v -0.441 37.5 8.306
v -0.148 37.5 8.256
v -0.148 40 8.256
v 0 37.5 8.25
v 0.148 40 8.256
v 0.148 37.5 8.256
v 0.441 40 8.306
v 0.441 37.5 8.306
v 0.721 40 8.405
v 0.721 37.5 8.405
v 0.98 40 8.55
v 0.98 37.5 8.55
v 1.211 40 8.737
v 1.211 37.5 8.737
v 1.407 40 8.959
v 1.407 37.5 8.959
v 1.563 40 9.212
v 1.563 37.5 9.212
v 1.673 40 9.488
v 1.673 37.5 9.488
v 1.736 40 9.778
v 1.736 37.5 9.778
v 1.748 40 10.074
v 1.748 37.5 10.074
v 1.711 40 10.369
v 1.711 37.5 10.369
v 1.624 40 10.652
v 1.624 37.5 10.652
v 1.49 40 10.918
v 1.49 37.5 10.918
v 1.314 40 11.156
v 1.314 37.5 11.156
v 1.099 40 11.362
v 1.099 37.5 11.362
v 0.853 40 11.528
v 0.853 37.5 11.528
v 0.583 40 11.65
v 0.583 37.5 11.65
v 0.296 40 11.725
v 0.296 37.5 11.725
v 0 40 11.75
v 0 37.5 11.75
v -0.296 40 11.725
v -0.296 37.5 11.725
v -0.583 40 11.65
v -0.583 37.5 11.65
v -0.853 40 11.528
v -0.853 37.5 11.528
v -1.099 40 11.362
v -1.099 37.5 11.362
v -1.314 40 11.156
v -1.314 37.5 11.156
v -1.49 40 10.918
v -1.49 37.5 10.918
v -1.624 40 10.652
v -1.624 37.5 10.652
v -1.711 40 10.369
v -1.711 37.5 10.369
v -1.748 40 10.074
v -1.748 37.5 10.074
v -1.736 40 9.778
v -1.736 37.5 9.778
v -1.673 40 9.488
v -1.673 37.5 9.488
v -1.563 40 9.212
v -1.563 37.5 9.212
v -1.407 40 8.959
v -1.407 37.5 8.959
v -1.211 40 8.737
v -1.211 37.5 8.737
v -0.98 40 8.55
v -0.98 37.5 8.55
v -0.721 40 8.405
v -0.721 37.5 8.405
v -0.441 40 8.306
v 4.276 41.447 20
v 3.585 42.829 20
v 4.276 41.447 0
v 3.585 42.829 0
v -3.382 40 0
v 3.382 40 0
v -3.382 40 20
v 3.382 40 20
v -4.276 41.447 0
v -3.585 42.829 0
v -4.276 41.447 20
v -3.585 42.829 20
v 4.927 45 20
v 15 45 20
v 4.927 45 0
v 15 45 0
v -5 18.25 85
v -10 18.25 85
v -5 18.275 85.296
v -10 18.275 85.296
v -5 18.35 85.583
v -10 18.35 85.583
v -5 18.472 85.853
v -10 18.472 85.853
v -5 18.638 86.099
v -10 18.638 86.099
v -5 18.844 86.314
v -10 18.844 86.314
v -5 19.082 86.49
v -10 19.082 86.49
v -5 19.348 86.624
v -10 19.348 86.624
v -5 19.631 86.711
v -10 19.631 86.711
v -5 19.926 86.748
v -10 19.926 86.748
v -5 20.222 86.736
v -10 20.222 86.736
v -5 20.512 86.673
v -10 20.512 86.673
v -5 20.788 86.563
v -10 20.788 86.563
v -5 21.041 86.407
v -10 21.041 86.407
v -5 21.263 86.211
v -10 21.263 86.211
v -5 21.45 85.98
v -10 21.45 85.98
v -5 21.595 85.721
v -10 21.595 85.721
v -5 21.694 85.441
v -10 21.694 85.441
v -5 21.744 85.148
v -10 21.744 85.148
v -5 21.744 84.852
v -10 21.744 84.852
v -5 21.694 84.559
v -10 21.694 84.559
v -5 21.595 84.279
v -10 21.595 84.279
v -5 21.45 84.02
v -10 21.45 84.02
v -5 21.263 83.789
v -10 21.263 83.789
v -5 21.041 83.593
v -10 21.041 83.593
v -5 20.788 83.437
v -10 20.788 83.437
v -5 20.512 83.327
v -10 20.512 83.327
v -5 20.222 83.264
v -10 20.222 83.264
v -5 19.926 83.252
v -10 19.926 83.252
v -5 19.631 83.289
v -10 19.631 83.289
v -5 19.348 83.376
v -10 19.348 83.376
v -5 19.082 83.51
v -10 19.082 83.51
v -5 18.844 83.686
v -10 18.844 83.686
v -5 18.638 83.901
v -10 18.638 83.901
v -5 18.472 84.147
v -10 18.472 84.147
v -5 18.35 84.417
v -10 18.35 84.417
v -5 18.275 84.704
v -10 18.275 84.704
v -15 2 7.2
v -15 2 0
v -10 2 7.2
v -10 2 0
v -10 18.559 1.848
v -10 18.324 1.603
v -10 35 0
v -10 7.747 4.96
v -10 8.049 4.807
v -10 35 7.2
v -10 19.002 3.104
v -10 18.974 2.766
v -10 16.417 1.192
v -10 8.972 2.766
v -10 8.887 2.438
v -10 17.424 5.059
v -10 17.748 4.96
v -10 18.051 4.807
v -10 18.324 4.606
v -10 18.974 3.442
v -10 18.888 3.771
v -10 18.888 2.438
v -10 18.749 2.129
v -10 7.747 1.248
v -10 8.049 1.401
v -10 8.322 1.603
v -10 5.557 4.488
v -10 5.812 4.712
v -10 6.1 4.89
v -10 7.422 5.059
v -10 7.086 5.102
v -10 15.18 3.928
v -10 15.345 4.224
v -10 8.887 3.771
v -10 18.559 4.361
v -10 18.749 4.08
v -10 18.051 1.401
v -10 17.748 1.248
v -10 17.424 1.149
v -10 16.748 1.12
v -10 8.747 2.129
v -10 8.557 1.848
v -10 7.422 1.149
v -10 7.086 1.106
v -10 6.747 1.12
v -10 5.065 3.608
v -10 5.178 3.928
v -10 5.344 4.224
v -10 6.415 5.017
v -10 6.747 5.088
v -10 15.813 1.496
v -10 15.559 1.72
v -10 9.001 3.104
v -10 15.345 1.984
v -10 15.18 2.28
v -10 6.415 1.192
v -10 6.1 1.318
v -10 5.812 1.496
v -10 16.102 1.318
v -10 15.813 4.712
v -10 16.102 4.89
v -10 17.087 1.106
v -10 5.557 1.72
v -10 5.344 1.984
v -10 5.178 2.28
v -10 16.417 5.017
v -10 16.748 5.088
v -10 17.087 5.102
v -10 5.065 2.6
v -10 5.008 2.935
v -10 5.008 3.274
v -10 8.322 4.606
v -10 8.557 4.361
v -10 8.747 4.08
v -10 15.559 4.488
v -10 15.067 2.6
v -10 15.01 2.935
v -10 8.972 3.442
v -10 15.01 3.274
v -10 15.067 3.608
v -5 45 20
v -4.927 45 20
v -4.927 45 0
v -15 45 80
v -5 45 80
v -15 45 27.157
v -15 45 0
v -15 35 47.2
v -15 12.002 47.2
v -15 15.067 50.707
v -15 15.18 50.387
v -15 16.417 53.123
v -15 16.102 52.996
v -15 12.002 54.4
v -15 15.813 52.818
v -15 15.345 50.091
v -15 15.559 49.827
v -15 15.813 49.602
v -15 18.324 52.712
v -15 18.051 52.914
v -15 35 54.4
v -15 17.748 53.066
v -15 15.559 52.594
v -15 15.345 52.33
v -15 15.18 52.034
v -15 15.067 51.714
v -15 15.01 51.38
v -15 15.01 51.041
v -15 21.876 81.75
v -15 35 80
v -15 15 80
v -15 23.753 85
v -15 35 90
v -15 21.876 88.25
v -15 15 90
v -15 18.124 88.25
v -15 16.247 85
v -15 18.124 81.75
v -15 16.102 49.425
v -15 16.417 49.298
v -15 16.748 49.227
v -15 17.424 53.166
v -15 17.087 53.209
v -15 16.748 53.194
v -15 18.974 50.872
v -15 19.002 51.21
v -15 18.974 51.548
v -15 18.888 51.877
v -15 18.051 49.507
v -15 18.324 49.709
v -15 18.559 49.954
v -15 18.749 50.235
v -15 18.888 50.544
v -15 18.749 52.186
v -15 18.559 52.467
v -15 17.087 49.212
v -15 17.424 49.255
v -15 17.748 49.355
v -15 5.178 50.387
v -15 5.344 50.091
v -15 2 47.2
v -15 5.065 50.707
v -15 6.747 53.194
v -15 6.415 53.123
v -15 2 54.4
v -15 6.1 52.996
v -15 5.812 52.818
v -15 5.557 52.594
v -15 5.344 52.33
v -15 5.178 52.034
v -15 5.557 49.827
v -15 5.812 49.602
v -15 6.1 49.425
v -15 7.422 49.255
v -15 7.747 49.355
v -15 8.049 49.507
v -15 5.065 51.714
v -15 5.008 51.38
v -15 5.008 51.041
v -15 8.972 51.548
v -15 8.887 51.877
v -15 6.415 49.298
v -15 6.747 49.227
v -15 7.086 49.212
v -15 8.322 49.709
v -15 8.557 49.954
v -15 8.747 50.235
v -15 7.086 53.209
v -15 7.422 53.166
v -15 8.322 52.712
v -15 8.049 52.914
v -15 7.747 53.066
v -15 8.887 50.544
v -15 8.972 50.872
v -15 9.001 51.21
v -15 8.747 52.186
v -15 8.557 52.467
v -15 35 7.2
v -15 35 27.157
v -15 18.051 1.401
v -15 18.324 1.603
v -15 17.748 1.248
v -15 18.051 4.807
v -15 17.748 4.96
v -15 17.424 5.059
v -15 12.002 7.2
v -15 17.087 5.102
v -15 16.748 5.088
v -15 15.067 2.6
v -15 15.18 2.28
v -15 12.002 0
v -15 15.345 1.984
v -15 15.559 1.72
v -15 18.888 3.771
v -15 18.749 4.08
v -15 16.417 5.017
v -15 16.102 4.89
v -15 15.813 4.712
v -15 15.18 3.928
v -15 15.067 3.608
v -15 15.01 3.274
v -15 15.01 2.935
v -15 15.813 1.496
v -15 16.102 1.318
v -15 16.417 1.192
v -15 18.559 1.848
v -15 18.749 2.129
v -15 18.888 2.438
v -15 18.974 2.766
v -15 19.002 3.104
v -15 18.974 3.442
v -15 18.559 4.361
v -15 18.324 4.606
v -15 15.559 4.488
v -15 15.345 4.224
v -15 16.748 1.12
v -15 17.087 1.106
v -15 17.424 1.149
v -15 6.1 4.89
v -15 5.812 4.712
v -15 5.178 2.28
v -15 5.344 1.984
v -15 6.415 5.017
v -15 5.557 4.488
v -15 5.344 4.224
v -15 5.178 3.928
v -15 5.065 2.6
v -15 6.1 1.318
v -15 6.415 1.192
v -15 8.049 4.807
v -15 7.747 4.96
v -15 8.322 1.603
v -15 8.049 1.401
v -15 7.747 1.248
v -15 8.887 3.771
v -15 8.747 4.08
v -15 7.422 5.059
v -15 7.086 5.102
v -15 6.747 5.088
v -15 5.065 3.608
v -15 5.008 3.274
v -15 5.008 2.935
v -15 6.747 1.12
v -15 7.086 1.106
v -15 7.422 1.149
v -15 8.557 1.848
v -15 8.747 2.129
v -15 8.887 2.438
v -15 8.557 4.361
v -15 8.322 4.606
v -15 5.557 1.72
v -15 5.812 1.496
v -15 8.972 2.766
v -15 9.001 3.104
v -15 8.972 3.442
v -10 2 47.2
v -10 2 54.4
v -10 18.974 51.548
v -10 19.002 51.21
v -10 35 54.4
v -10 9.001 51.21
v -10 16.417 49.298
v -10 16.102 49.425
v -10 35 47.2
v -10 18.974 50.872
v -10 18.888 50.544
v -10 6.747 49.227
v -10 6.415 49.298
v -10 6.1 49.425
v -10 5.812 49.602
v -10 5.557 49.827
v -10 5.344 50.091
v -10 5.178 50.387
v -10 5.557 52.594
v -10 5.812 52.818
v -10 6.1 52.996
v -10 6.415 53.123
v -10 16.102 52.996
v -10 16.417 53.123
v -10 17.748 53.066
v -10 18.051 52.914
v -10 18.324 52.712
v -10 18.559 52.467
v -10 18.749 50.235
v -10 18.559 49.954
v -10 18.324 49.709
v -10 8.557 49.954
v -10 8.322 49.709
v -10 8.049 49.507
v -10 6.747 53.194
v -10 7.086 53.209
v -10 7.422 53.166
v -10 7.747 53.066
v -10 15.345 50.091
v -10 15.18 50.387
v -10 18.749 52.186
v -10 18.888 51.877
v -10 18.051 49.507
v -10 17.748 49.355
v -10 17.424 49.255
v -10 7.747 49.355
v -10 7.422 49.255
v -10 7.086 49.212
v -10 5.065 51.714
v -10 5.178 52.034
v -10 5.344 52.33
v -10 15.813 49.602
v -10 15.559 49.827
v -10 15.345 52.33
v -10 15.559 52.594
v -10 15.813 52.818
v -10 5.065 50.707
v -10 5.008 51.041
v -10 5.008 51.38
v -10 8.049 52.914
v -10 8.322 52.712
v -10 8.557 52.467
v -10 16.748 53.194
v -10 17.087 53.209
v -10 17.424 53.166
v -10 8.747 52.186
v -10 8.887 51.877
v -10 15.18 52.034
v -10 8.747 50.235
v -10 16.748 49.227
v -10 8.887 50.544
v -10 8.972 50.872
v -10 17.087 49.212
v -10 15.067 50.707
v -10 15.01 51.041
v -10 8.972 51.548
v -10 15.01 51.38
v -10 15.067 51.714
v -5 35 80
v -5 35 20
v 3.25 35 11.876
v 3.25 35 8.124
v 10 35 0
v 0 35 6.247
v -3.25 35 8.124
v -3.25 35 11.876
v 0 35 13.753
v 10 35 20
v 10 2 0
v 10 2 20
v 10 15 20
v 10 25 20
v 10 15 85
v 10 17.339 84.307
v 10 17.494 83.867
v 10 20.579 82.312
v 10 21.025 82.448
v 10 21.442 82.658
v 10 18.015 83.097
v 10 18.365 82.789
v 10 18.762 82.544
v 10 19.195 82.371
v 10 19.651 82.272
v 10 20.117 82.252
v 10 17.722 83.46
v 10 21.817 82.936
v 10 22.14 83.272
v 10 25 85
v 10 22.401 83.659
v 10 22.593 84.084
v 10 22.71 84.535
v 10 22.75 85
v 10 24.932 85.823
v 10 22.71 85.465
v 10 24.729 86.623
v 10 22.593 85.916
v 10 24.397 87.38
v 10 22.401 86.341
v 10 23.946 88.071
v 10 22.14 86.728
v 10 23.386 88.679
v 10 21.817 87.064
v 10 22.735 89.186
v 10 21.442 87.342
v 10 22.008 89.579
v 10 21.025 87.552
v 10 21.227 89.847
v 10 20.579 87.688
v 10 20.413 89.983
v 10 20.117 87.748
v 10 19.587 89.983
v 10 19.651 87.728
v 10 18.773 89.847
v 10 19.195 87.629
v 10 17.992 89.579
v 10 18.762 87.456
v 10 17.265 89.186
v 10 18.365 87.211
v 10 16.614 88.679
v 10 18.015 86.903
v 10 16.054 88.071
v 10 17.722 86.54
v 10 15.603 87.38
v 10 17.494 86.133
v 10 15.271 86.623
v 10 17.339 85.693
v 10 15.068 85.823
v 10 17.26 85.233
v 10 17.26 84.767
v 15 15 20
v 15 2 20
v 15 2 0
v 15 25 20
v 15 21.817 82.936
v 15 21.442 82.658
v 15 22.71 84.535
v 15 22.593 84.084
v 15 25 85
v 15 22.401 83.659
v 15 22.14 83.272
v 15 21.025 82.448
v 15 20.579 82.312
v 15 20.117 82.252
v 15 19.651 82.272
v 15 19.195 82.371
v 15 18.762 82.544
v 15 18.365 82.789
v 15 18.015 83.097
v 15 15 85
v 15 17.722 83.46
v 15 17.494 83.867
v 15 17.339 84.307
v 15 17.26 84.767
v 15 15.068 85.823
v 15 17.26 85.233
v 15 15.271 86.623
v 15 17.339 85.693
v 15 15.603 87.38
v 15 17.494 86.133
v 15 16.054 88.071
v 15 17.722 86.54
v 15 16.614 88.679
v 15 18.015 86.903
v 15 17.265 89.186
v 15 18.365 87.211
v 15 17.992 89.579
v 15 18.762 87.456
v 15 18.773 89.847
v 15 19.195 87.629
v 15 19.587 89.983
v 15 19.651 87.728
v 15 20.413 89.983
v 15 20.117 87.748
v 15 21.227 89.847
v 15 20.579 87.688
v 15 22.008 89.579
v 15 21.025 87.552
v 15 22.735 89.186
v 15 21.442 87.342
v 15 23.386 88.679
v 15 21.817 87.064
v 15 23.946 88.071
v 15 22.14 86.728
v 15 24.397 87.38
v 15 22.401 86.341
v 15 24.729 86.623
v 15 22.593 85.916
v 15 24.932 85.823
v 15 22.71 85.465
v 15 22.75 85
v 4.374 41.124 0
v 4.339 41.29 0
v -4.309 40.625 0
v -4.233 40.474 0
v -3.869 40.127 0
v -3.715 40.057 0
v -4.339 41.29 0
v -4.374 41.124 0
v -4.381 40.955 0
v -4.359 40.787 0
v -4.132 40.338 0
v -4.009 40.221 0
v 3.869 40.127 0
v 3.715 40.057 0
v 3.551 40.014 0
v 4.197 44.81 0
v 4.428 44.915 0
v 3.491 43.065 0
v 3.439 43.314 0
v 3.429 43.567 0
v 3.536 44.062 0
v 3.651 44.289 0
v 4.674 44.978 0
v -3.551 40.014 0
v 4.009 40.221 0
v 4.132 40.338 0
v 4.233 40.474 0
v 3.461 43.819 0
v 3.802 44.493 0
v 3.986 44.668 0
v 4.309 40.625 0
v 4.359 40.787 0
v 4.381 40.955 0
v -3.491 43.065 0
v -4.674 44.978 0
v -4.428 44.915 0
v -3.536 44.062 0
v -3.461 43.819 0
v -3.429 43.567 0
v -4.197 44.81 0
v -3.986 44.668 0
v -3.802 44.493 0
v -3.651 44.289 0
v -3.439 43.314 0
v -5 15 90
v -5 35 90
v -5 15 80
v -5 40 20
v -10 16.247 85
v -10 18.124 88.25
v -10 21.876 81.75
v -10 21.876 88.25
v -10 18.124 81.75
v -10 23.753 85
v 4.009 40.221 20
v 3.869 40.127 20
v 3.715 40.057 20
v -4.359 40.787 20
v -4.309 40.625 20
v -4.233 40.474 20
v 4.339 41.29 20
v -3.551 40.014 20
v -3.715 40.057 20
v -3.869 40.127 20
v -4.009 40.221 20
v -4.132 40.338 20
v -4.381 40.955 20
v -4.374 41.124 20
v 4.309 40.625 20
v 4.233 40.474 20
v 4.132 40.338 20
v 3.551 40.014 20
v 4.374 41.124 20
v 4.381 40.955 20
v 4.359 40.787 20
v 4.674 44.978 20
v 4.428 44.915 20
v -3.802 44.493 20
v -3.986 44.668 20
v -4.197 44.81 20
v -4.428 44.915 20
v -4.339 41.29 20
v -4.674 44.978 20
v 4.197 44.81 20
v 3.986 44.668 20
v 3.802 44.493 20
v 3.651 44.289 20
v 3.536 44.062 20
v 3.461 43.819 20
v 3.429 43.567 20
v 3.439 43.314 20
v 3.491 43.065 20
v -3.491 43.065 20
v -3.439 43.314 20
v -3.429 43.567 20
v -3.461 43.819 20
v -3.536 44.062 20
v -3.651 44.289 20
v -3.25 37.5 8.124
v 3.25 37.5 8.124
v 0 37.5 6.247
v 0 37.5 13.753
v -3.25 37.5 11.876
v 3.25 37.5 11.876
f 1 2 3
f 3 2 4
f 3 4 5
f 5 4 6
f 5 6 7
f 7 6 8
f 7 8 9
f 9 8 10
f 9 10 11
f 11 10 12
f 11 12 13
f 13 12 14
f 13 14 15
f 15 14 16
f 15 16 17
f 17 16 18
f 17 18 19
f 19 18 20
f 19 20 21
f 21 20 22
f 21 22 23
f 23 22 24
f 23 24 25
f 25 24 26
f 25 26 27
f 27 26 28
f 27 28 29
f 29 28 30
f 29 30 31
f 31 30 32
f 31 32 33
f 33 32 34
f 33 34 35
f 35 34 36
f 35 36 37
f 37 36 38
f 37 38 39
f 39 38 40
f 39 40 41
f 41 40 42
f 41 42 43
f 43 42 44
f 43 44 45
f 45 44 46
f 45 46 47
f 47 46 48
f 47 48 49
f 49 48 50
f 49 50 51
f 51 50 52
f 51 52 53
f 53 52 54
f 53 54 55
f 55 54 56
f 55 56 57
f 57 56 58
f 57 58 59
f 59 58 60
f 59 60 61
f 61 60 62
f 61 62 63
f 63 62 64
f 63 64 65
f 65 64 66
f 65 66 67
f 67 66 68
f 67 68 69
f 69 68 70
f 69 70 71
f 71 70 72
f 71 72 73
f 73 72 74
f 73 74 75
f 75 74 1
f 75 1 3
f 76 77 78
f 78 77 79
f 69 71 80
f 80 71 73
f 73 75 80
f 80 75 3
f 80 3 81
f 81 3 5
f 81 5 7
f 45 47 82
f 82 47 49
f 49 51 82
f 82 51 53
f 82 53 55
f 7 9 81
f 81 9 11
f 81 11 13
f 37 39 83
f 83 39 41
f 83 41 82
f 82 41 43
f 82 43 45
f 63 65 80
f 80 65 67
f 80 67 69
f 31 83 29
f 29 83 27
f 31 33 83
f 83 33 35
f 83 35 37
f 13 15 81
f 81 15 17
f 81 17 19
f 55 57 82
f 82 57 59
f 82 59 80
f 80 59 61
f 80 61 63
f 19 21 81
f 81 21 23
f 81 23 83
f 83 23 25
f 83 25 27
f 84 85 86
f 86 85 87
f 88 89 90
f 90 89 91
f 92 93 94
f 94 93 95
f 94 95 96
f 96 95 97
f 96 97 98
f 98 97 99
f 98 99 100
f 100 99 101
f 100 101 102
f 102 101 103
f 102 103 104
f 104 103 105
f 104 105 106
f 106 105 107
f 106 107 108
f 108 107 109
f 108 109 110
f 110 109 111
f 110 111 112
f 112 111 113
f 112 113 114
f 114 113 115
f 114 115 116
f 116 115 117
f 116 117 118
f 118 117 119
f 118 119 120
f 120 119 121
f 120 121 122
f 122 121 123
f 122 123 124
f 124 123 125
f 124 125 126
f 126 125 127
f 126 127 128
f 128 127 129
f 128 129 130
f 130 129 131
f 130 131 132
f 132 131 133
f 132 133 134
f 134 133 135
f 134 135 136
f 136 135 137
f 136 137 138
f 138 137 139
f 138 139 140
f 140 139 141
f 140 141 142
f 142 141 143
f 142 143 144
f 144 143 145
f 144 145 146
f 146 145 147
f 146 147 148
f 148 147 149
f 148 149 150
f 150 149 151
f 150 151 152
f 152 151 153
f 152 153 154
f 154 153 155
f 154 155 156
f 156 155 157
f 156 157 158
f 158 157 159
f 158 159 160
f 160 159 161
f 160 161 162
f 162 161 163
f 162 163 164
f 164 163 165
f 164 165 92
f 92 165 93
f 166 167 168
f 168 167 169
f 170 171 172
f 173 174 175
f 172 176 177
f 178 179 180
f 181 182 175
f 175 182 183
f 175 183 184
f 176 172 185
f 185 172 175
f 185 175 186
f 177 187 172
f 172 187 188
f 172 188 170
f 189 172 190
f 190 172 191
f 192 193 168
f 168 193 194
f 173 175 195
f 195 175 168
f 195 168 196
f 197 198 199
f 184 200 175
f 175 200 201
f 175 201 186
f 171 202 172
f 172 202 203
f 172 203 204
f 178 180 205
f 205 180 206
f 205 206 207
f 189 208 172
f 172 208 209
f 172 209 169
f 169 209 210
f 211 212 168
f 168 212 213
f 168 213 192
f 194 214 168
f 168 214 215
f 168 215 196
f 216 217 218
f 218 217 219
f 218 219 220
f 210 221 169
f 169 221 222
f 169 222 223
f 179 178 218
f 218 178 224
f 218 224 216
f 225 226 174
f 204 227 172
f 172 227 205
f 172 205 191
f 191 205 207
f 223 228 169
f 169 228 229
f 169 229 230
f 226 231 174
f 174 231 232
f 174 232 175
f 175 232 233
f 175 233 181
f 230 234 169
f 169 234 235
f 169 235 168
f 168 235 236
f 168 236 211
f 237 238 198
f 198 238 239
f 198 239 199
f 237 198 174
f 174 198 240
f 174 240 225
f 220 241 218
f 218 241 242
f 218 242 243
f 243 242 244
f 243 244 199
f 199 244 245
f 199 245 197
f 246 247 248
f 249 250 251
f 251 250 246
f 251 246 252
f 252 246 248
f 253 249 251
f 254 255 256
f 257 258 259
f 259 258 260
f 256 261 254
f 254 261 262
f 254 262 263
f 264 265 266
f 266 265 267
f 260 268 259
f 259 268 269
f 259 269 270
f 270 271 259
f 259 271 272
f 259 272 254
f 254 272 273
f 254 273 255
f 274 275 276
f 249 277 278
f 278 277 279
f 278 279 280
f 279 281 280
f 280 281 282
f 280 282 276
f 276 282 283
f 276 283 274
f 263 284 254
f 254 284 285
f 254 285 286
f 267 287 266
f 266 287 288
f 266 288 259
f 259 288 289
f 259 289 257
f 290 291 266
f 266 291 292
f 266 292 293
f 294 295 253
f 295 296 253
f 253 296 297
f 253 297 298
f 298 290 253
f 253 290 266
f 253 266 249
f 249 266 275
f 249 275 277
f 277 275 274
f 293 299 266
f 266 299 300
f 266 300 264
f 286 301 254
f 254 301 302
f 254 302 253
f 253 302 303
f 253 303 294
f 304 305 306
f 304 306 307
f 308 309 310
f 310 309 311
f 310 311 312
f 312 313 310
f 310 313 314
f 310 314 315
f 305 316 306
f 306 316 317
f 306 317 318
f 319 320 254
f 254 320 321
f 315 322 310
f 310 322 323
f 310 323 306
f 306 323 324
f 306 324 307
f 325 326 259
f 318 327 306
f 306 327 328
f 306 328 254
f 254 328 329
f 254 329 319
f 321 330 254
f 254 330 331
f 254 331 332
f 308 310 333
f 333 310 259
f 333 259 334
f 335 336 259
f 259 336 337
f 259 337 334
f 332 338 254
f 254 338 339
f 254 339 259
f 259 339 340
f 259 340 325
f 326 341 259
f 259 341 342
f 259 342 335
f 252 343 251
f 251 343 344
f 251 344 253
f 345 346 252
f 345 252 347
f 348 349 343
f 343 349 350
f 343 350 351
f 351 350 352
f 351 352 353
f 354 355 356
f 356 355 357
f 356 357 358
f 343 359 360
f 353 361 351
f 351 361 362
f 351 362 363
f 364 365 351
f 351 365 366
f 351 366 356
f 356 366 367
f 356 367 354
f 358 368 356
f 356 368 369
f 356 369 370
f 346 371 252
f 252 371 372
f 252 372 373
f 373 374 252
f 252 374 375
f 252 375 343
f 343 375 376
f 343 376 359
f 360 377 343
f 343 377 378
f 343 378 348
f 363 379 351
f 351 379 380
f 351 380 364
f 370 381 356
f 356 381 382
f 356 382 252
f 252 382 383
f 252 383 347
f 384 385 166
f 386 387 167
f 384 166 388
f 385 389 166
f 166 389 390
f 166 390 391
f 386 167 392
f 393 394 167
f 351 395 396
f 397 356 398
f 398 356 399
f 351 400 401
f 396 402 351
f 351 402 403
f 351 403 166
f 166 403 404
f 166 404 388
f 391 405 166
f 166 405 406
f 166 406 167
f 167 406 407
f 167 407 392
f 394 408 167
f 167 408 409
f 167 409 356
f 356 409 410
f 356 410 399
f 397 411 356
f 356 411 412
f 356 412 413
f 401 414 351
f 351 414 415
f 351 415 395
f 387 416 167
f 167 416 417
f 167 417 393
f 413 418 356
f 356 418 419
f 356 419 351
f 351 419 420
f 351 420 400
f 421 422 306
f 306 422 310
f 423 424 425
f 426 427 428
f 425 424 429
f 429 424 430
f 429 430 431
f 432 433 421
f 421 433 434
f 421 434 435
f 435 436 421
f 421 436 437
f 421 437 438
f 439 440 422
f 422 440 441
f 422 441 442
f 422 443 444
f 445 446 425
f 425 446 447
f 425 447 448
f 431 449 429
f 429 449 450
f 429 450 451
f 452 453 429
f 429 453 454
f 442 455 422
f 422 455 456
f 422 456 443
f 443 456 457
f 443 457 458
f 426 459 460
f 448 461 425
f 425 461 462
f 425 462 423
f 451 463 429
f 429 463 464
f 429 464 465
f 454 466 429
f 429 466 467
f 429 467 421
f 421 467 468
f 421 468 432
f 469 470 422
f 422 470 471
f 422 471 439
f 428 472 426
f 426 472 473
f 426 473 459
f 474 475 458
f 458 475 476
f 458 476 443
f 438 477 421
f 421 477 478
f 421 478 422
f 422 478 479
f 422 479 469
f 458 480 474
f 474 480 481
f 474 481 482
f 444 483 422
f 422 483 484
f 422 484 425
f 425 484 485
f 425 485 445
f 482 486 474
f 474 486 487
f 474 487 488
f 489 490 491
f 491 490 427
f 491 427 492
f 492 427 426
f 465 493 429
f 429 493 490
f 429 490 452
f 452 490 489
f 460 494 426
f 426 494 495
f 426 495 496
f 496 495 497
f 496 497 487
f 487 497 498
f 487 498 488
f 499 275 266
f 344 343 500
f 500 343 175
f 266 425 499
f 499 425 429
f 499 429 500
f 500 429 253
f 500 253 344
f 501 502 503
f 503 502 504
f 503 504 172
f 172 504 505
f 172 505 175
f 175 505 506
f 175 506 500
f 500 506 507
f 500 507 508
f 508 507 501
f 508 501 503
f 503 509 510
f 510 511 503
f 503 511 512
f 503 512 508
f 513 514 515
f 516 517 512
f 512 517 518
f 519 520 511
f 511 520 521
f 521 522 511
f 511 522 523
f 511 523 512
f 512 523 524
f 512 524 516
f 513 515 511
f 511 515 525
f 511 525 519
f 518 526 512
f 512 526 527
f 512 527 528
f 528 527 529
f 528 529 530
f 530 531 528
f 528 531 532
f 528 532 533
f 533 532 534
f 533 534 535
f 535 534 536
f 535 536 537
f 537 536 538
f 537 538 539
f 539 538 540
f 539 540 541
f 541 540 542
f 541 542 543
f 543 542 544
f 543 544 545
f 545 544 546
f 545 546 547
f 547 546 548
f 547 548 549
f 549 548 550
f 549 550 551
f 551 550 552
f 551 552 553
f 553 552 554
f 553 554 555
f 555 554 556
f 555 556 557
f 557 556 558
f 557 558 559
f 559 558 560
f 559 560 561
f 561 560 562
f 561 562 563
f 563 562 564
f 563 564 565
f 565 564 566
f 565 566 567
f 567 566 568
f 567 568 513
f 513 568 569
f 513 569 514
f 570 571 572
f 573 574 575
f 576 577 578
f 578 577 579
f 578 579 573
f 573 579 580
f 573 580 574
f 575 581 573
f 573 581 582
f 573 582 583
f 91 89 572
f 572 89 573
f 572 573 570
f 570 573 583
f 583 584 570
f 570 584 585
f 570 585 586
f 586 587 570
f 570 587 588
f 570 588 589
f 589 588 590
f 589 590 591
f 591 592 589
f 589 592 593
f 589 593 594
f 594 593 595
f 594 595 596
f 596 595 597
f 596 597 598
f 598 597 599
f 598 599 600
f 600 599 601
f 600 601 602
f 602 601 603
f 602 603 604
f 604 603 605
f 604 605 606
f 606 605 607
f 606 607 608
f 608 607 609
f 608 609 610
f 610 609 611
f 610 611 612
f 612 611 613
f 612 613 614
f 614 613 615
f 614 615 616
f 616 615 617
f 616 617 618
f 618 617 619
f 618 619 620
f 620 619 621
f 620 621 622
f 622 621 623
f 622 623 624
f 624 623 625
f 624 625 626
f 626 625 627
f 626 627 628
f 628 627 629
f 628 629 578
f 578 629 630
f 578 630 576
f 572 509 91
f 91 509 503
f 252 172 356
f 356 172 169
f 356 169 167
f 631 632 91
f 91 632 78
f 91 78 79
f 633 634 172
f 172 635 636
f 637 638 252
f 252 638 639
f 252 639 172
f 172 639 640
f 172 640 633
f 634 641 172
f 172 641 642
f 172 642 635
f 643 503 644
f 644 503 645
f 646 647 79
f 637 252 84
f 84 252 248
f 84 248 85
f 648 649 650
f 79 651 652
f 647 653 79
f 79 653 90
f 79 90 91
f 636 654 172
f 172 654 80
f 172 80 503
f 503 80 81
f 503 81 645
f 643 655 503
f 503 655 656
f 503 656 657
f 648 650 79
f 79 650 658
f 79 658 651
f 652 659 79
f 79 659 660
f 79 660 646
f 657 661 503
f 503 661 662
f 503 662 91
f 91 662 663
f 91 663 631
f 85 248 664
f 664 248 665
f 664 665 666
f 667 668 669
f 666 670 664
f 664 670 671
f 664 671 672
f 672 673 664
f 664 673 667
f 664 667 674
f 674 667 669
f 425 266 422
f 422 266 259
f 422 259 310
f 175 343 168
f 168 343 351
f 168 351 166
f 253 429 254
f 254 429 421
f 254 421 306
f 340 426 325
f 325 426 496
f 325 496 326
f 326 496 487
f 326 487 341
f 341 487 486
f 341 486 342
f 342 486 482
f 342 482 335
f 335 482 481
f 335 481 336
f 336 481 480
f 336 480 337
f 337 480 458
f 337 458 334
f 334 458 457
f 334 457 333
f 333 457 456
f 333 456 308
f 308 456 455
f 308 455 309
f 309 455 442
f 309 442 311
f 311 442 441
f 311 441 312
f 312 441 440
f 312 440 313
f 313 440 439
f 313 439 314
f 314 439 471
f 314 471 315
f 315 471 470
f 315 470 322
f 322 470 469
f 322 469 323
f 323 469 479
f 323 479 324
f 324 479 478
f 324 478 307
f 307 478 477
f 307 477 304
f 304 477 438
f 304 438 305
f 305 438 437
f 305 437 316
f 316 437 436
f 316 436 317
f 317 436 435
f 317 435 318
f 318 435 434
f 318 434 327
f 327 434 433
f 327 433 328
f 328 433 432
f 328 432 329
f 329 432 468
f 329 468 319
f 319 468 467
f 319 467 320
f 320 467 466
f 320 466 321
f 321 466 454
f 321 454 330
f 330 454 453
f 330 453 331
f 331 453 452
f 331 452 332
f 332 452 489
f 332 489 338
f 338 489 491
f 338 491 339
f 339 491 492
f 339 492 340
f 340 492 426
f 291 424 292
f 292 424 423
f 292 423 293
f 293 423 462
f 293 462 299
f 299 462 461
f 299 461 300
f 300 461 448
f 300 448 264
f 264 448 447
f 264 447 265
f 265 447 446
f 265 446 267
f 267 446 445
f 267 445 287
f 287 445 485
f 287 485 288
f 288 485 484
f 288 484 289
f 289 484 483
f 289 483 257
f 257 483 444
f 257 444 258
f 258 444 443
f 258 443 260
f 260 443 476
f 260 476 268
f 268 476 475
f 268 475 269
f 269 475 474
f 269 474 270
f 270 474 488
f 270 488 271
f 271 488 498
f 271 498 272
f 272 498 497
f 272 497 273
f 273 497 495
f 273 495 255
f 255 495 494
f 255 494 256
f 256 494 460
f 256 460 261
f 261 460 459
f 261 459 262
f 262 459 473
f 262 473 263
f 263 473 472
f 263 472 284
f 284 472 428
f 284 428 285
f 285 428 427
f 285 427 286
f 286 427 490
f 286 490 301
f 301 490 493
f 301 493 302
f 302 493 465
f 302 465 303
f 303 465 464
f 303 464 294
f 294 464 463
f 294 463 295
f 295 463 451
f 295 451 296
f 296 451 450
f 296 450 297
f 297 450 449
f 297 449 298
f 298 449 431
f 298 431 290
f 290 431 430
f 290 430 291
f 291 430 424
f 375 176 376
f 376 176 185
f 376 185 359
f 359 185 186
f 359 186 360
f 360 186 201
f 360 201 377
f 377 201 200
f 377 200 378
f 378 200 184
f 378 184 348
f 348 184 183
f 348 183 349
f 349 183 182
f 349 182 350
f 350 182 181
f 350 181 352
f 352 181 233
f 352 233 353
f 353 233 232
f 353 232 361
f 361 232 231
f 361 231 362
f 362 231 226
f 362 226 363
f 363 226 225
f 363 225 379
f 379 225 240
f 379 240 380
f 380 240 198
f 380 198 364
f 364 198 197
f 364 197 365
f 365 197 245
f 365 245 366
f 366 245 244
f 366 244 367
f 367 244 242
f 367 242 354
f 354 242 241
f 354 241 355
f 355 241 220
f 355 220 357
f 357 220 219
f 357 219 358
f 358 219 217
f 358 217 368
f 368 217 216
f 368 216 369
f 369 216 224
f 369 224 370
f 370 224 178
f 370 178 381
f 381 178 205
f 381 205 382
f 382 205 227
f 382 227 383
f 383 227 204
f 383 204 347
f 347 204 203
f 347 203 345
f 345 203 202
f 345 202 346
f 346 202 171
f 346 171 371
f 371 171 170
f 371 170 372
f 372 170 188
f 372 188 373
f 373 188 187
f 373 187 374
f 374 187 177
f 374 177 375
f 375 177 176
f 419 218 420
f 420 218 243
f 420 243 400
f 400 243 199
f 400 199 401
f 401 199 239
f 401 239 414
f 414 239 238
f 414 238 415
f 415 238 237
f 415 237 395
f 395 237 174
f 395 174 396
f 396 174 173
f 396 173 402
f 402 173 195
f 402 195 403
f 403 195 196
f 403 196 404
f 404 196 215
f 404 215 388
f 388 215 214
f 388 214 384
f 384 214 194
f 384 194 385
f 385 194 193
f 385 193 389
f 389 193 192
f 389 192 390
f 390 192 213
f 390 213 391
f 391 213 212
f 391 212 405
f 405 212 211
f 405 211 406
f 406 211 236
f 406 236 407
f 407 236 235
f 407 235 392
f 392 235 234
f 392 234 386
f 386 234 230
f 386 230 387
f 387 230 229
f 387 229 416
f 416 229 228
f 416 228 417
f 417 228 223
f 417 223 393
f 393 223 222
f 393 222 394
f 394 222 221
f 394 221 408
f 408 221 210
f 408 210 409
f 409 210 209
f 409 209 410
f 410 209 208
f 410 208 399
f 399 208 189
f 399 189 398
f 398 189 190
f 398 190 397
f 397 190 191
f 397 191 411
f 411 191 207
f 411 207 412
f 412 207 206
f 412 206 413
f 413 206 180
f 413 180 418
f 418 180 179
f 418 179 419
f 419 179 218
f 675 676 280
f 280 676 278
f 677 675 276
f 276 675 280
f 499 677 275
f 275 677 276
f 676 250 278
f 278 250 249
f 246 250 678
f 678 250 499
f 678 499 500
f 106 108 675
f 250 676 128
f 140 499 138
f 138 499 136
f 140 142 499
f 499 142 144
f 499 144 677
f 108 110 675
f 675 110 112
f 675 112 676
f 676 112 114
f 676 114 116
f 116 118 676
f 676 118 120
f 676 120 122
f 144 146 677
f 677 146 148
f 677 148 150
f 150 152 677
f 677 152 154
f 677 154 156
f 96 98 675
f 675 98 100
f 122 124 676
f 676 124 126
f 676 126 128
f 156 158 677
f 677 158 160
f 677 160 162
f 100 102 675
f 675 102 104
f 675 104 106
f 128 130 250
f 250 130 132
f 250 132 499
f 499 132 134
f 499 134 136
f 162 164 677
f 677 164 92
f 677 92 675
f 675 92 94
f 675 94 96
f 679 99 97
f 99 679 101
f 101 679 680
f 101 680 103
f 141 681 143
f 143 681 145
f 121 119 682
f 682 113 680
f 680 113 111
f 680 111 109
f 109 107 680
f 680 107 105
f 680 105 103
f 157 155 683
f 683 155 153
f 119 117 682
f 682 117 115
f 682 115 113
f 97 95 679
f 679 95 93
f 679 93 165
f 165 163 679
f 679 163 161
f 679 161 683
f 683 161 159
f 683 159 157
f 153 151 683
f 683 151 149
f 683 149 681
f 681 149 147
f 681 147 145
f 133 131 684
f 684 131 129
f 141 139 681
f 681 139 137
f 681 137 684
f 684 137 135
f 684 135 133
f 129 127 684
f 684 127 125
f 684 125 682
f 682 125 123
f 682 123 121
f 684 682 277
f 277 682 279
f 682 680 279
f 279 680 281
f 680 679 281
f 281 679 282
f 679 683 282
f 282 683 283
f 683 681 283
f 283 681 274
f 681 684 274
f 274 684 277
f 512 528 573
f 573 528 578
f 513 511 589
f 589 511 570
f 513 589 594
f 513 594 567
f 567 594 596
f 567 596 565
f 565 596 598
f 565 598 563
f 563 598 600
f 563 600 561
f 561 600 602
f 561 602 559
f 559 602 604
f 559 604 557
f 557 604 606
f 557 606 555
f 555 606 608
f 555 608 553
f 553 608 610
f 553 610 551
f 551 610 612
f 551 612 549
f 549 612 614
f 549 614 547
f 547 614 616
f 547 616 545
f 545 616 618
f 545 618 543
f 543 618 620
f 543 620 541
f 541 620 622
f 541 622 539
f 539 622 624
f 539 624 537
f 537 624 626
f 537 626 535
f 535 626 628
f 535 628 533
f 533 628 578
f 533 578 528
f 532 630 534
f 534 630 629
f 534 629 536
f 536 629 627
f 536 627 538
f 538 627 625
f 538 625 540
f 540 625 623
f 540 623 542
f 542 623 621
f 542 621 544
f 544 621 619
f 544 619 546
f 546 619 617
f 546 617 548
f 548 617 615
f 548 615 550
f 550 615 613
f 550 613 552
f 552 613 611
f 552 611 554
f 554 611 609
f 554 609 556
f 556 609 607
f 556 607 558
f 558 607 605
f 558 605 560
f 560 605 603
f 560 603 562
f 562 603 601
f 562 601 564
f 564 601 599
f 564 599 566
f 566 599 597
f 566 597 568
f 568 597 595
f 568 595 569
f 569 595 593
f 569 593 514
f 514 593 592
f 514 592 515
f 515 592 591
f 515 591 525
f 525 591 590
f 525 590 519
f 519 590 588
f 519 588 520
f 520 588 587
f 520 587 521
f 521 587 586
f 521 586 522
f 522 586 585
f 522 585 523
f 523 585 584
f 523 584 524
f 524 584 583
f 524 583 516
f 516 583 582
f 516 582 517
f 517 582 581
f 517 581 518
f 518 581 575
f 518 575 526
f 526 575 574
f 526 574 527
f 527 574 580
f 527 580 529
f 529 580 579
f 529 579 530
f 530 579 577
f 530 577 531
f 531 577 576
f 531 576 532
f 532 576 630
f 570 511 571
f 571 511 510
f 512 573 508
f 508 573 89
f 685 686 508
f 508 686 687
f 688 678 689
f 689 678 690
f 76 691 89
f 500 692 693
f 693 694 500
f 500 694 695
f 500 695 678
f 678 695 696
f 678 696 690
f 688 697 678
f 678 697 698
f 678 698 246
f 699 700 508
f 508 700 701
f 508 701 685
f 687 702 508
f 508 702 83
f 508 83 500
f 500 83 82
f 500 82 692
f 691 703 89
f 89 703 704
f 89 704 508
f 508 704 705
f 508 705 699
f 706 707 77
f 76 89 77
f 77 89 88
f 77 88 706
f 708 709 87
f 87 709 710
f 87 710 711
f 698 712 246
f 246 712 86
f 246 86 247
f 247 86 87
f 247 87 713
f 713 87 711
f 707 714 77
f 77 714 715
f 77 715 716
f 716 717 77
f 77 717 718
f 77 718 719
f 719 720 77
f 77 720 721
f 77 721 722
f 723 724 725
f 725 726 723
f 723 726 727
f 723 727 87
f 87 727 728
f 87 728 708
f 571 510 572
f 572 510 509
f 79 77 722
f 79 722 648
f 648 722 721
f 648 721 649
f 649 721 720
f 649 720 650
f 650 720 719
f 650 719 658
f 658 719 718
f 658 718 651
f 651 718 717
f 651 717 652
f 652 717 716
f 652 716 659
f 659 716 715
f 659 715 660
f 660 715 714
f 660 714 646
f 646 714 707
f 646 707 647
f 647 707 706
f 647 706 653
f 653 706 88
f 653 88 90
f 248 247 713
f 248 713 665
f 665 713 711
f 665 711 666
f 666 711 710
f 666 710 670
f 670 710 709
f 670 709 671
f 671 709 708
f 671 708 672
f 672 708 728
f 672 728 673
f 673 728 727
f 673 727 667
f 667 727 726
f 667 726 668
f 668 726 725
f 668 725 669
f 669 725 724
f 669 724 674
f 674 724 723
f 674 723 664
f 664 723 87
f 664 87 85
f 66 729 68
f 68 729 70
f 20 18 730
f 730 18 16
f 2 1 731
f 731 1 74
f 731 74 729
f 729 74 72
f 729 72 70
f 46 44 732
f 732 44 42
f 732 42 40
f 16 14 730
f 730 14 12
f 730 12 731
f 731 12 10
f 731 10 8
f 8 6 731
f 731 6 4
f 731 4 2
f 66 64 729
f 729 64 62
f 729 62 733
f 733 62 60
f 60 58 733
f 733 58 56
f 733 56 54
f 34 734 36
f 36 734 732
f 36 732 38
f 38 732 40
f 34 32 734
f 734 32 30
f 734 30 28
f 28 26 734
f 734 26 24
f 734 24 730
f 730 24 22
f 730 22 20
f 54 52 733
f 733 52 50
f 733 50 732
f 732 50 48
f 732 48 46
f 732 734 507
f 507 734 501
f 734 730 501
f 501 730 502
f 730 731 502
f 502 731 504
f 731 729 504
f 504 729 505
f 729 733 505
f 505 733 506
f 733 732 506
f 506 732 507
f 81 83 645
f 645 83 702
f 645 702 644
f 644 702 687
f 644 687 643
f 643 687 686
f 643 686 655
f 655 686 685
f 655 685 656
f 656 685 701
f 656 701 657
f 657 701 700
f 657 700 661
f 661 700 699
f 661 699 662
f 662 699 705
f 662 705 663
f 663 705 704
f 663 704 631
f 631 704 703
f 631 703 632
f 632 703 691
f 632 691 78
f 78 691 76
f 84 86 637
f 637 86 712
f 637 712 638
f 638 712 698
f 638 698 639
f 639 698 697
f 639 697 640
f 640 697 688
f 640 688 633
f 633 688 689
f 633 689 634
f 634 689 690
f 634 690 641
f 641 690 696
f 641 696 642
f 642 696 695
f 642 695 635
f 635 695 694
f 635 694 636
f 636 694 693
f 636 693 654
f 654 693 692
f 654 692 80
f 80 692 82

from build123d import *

# Parameters (mm, degrees)
RESSALTO_EXTRUS_O1_DEPTH = 80
ESBO_O2_W                = 40
ESBO_O2_H                = 33
ESBO_O2_W_2              = 25.6
CORTE_EXTRUS_O1_DEPTH    = 12
ESBO_O4_R                = 2
CORTE_EXTRUS_O3_DEPTH    = 12
ESBO_O6_W                = 10
ESBO_O6_H                = 20
RESSALTO_EXTRUS_O2_DEPTH = 10
ESBO_O7_R                = 1.75
CORTE_EXTRUS_O4_DEPTH    = 15
CORTE_EXTRUS_O5_DEPTH    = 5
ESBO_O10_R               = 5
ESBO_O10_R_2             = 2.75
RESSALTO_EXTRUS_O3_DEPTH = 5
ESBO_O11_W               = 20
ESBO_O11_H               = 20
ESBO_O11_W_2             = 25
ESBO_O11_H_2             = 10
CORTE_EXTRUS_O7_DEPTH    = 60
ESBO_O13_W               = 30
ESBO_O13_H               = 47
CORTE_EXTRUS_O9_DEPTH    = 168
FILETE1_R                = 1.5
ESBO_O14_R               = 1.75
CORTE_EXTRUS_O10_DEPTH   = 14.5
CORTE_EXTRUS_O11_DEPTH   = 2.5
FILETE2_R                = 1


with BuildPart() as part:
    # Esboço1 → Ressalto-extrusão1 (new body)
    with BuildSketch(Plane.XY):
        Polygon((-2.5, 45), (-15, 45), (-15, 2), (-10, 2), (-10, 35), (10, 35), (10, -35), (-15, -35), (-15, -45), (15, -45), (15, 45), (2.5, 45), (5, 40), (-5, 40), align=None)
    extrude(amount=RESSALTO_EXTRUS_O1_DEPTH)

    # Esboço2 → Corte-extrusão1 (cut)
    with BuildSketch(Plane.ZY.offset(15)):
        with Locations((27.2, 18.5)):
            Rectangle(ESBO_O2_W, ESBO_O2_H)
        with Locations((67.2, 18.5)):
            Rectangle(ESBO_O2_W_2, ESBO_O2_H)
    extrude(amount=-CORTE_EXTRUS_O1_DEPTH, mode=Mode.SUBTRACT)

    # Esboço4 → Corte-extrusão3 (cut)
    with BuildSketch(Plane(origin=(-10, 0, 0), x_dir=(0, 0, -1), z_dir=(1, 0, 0))):
        with Locations(Location((-3.104223841, 17.002484575, 0), (0, 0, 90))):
            Circle(ESBO_O4_R)
        with Locations(Location((-3.104223841, 7.000828192, 0), (0, 0, 90))):
            Circle(ESBO_O4_R)
        with Locations(Location((-51.210481376, 17.002484575, 0), (0, 0, 90))):
            Circle(ESBO_O4_R)
        with Locations(Location((-51.210481376, 7.000828192, 0), (0, 0, 90))):
            Circle(ESBO_O4_R)
    extrude(amount=-CORTE_EXTRUS_O3_DEPTH, mode=Mode.SUBTRACT)

    # Esboço6 → Ressalto-extrusão2 (add)
    with BuildSketch(Plane.ZY.offset(15)):
        with Locations((85, 25)):
            Rectangle(ESBO_O6_W, ESBO_O6_H)
        Polygon((80, 35), (90, 35), (80, 45), align=None)
    extrude(amount=-RESSALTO_EXTRUS_O2_DEPTH)

    # Esboço7 → Corte-extrusão4 (cut)
    with BuildSketch(Plane.ZY.offset(15)):
        with Locations(Location((85, 20, 0), (0, 0, 270))):
            Circle(ESBO_O7_R)
    extrude(amount=-CORTE_EXTRUS_O4_DEPTH, mode=Mode.SUBTRACT)

    # Esboço8 → Corte-extrusão5 (cut)
    with BuildSketch(Plane.ZY.offset(15)):
        Polygon((85, 23.75277675), (81.75, 21.876388375), (81.75, 18.123611625), (85, 16.24722325), (88.25, 18.123611625), (88.25, 21.876388375), align=None)
    extrude(amount=-CORTE_EXTRUS_O5_DEPTH, mode=Mode.SUBTRACT)

    # Esboço10 → Ressalto-extrusão3 (add)
    # profile 1 of 3: a face of its own
    with BuildSketch(Plane(origin=(15, 0, 0), x_dir=(0, 0, -1), z_dir=(1, 0, 0))):
        with BuildLine():
            Line((-80, 25), (-85, 25))
            ThreePointArc((-85, 25), (-81.464466094, 23.535533906), (-80, 20))
            Line((-80, 20), (-80, 25))
        make_face()
    # profile 2 of 3: a face of its own
    with BuildSketch(Plane(origin=(15, 0, 0), x_dir=(0, 0, -1), z_dir=(1, 0, 0))):
        with Locations((-85, 20)):
            Circle(ESBO_O10_R)
        with Locations(Location((-85, 20, 0), (0, 0, 90))):
            Circle(ESBO_O10_R_2, mode=Mode.SUBTRACT)
    # profile 3 of 3: a face of its own
    with BuildSketch(Plane(origin=(15, 0, 0), x_dir=(0, 0, -1), z_dir=(1, 0, 0))):
        with BuildLine():
            Line((-80, 15), (-80, 20))
            ThreePointArc((-80, 20), (-81.464466094, 16.464466094), (-85, 15))
            Line((-85, 15), (-80, 15))
        make_face()
    extrude(amount=-RESSALTO_EXTRUS_O3_DEPTH)

    # Esboço11 → Corte-extrusão7 (cut)
    with BuildSketch(Plane.XY.offset(80)):
        with Locations((5, 35)):
            Rectangle(ESBO_O11_W, ESBO_O11_H)
        Polygon((10, -45), (15, -45), (15, 15), (10, 15), (10, -35), align=None)
        with Locations((-2.5, -40)):
            Rectangle(ESBO_O11_W_2, ESBO_O11_H_2)
    extrude(amount=-CORTE_EXTRUS_O7_DEPTH, mode=Mode.SUBTRACT)

    # Esboço13 → Corte-extrusão9 (cut)
    with BuildSketch(Plane.XY.offset(20)):
        with Locations((0, -21.5)):
            Rectangle(ESBO_O13_W, ESBO_O13_H)
    extrude(amount=-CORTE_EXTRUS_O9_DEPTH, mode=Mode.SUBTRACT)

    # Filete1
    filete1_edges = [part.edges().sort_by_distance(p)[0] for p in [
        (2.5, 45, 10),
        (-2.5, 45, 10),
    ]]
    fillet(filete1_edges, radius=FILETE1_R)

    # Esboço14 → Corte-extrusão10 (cut)
    with BuildSketch(Plane(origin=(0, 40, 0), x_dir=(1, 0, 0), z_dir=(0, 1, 0))):
        with Locations(Location((0, -10, 0), (0, 0, 270))):
            Circle(ESBO_O14_R)
    extrude(amount=-CORTE_EXTRUS_O10_DEPTH, mode=Mode.SUBTRACT)

    # Esboço15 → Corte-extrusão11 (cut)
    with BuildSketch(Plane.XZ.offset(-35)):
        Polygon((0, 13.75277675), (-3.25, 11.876388375), (-3.25, 8.123611625), (0, 6.24722325), (3.25, 8.123611625), (3.25, 11.876388375), align=None)
    extrude(amount=-CORTE_EXTRUS_O11_DEPTH, mode=Mode.SUBTRACT)

    # Filete2
    filete2_edges = [part.edges().sort_by_distance(p)[0] for p in [
        (-5, 40, 10),
        (5, 40, 10),
    ]]
    fillet(filete2_edges, radius=FILETE2_R)


solid = part.part
